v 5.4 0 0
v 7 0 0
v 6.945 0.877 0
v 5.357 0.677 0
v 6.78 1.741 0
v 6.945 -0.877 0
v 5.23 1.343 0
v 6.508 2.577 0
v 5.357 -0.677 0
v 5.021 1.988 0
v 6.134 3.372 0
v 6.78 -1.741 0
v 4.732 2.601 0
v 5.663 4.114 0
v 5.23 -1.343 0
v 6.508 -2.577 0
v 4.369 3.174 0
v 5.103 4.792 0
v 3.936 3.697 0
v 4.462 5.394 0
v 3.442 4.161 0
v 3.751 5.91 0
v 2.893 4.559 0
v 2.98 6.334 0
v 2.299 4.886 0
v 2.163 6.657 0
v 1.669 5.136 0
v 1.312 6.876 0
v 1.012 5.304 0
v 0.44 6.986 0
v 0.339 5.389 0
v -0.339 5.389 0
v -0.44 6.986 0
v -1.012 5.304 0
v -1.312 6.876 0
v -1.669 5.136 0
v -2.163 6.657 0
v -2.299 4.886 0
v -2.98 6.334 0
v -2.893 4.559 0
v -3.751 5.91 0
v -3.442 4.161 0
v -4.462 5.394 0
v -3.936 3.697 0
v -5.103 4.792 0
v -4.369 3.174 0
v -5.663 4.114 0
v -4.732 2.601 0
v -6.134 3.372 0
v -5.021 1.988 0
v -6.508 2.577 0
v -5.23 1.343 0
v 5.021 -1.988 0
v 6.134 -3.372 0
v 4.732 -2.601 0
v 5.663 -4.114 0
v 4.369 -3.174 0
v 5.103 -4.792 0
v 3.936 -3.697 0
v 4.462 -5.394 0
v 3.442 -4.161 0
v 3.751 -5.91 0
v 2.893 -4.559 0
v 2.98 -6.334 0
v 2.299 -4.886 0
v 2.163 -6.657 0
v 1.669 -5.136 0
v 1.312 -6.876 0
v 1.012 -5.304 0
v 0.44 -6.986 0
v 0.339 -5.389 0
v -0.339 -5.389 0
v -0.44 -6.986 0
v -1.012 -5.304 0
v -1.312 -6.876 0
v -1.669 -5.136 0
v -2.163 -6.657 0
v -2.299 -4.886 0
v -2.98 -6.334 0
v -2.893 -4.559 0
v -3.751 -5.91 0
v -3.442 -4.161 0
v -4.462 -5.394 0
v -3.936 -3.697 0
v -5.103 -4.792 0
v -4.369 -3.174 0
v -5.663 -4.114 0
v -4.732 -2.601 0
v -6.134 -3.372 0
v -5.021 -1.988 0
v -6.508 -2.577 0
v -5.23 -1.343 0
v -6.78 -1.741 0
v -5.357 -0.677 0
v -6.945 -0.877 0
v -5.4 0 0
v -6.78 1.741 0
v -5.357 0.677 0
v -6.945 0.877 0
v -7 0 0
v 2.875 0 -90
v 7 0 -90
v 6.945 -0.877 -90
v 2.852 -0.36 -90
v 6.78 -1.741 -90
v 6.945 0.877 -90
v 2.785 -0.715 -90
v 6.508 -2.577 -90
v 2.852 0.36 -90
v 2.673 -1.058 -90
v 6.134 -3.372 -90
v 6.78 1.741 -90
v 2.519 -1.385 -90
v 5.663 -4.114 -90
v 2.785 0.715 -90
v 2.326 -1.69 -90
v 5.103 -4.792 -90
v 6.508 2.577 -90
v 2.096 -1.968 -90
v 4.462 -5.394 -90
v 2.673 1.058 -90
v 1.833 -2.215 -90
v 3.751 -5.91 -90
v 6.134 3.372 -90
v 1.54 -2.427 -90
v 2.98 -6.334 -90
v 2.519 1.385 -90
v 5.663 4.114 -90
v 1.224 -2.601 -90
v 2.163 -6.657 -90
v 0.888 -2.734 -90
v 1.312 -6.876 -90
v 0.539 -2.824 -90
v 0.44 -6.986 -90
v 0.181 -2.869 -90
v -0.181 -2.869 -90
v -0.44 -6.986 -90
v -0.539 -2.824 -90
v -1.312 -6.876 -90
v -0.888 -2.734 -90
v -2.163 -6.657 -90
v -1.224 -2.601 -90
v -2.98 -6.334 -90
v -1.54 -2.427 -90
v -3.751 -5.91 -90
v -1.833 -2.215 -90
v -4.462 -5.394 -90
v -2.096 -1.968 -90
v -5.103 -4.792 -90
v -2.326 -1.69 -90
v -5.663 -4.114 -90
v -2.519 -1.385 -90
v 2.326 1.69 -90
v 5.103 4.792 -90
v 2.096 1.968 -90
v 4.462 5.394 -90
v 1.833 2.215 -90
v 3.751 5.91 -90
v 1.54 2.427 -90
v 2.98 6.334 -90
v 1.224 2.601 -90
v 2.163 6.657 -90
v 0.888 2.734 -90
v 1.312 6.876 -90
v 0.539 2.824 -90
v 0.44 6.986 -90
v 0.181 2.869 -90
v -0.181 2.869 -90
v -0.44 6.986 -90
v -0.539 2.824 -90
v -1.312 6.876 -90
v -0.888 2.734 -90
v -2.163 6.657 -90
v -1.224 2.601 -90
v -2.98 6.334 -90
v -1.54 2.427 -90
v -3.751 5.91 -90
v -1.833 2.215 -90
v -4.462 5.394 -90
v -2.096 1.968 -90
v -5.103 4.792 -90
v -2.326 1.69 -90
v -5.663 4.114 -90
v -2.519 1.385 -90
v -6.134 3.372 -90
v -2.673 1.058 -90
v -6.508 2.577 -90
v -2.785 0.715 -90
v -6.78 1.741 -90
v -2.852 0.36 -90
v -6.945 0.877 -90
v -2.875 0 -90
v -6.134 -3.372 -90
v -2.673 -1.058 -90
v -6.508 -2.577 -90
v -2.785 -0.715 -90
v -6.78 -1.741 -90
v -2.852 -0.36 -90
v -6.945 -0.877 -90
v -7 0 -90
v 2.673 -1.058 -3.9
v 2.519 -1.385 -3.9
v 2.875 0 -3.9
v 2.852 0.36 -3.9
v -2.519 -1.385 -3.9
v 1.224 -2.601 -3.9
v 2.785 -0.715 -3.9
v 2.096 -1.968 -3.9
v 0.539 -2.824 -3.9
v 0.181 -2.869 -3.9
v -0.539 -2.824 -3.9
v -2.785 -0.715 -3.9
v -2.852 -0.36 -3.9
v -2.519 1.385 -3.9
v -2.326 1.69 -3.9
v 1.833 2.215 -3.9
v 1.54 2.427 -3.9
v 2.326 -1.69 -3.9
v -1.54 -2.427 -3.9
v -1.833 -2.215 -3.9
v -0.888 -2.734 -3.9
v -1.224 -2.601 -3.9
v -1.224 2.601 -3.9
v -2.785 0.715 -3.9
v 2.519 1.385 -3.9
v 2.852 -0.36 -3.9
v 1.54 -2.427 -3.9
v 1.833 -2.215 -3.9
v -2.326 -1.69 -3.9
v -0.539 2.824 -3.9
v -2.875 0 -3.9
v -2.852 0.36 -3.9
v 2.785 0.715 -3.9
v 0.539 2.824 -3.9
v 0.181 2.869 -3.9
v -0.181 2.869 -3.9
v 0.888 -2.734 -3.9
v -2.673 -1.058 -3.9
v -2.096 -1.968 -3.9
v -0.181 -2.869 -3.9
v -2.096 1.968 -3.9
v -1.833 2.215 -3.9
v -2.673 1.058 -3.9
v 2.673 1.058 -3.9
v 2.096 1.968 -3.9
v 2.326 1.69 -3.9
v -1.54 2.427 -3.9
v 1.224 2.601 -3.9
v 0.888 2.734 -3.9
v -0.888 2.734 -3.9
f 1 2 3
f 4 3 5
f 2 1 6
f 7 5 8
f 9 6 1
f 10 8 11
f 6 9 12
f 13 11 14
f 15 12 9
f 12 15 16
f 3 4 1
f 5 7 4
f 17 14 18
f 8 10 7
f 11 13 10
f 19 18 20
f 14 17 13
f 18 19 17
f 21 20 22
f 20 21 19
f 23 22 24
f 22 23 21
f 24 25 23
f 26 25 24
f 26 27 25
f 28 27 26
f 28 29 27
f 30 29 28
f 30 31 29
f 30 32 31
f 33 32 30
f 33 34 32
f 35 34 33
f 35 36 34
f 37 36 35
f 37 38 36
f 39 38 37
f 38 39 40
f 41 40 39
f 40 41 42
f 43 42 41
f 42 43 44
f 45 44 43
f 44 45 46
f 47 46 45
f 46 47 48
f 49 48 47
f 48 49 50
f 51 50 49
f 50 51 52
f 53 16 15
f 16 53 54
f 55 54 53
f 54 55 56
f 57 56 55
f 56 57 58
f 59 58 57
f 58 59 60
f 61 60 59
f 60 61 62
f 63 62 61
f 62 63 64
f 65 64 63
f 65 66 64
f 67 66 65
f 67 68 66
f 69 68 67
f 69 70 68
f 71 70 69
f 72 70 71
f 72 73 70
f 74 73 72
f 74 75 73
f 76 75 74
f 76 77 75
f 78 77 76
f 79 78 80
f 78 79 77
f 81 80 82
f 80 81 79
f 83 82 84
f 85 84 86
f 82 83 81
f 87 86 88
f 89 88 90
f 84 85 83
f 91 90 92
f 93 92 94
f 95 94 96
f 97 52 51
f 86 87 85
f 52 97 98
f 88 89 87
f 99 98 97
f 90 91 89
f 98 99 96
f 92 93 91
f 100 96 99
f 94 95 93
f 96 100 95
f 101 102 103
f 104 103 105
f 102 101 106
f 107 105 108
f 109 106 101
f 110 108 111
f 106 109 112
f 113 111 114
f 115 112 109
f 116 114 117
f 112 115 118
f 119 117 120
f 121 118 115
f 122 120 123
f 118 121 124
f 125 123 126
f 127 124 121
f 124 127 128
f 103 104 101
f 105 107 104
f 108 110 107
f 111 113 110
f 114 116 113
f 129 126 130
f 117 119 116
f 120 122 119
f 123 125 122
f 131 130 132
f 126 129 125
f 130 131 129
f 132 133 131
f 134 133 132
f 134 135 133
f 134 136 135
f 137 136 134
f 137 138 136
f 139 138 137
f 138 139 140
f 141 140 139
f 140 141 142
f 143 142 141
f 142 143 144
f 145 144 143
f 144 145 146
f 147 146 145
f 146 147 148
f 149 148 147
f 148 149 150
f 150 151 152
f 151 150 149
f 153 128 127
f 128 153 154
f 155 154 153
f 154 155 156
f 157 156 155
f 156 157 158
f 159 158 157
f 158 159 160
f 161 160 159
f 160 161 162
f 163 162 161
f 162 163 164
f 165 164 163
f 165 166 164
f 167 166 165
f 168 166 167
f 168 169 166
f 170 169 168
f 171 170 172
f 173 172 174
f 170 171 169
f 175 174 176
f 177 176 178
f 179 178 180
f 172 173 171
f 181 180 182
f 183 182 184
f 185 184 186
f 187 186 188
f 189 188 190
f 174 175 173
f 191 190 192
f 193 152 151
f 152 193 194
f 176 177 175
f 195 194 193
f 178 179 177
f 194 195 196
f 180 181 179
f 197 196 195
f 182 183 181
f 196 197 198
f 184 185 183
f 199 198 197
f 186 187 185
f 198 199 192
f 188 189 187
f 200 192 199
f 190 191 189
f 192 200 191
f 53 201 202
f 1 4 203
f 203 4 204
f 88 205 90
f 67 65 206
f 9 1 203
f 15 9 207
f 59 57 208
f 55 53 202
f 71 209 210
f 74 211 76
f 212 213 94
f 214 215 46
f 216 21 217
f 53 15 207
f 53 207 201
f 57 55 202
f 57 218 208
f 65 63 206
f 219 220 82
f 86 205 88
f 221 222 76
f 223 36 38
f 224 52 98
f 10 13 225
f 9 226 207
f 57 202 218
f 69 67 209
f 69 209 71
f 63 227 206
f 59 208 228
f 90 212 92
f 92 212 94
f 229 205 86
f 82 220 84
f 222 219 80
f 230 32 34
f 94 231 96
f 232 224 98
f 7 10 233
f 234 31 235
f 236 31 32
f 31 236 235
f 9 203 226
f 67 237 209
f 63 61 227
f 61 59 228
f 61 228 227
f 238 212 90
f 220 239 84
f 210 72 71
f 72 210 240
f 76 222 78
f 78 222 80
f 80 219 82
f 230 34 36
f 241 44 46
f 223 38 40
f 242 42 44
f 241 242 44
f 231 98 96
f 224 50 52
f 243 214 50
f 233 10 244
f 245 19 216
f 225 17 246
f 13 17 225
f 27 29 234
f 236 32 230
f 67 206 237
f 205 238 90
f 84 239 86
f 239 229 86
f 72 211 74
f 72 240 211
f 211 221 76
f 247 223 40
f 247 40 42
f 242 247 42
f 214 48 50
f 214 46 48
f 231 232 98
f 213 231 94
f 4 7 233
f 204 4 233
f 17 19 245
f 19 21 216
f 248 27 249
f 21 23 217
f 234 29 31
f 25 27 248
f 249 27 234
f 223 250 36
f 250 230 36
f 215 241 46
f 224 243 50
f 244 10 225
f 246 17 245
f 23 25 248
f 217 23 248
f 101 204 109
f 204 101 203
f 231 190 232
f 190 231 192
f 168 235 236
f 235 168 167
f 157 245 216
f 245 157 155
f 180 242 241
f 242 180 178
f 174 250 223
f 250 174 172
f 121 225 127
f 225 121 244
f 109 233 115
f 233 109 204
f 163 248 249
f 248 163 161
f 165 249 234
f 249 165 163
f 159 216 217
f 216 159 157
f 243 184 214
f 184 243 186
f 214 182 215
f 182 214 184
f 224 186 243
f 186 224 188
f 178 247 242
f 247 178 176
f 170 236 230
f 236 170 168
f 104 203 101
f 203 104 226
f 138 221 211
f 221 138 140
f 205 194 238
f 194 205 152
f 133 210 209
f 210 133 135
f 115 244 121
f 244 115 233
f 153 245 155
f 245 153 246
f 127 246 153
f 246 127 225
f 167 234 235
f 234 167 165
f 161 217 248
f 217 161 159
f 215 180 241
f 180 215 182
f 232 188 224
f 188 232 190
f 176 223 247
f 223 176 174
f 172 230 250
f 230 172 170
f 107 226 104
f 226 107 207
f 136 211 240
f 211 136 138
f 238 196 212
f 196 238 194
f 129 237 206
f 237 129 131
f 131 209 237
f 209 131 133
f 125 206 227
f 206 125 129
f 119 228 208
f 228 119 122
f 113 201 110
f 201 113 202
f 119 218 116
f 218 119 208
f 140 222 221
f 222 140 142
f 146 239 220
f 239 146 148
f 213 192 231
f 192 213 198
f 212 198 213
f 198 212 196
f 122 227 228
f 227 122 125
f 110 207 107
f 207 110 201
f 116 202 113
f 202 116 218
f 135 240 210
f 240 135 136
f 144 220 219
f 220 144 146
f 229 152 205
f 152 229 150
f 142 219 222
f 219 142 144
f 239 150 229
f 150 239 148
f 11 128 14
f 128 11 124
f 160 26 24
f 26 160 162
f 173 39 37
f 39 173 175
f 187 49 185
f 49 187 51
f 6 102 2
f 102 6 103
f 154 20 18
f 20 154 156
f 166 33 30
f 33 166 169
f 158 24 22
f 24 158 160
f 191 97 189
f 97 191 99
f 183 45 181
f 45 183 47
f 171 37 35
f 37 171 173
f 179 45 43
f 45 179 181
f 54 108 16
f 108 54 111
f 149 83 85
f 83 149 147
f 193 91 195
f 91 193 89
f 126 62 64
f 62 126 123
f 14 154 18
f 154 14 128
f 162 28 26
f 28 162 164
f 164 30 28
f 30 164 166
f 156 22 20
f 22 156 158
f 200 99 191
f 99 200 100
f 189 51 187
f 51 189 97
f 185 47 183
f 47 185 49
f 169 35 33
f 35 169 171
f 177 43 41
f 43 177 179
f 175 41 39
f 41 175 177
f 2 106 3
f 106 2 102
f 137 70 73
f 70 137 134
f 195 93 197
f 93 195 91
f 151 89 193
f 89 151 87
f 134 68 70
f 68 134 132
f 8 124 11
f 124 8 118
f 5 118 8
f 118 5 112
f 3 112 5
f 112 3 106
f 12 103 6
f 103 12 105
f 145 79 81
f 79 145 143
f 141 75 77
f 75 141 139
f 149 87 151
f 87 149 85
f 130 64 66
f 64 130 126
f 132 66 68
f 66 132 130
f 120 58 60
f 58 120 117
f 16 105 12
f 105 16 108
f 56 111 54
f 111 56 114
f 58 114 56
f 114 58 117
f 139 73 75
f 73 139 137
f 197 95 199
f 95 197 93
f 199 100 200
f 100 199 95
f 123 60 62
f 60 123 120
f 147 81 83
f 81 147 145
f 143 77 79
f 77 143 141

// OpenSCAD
$fn = 50;


difference() {
	union() {
		translate(v = [0, 0, -90.0000000000]) {
			cylinder(h = 90, r = 7.0000000000);
		}
		cylinder(h = 0, r = 13.0000000000);
	}
	union() {
		translate(v = [0, 0, 0]) {
			rotate(a = [0, 0, 0]) {
				difference() {
					union() {
						#translate(v = [0, 0, -90.0000000000]) {
							cylinder(h = 90, r = 2.6000000000);
						}
						#translate(v = [0, 0, -3.9000000000]) {
							cylinder(h = 3.9000000000, r1 = 2.8750000000, r2 = 5.4000000000);
						}
						#translate(v = [0, 0, -90.0000000000]) {
							cylinder(h = 90, r = 2.8750000000);
						}
						#translate(v = [0, 0, -90.0000000000]) {
							cylinder(h = 90, r = 2.6000000000);
						}
					}
					union();
				}
			}
		}
	}
}
